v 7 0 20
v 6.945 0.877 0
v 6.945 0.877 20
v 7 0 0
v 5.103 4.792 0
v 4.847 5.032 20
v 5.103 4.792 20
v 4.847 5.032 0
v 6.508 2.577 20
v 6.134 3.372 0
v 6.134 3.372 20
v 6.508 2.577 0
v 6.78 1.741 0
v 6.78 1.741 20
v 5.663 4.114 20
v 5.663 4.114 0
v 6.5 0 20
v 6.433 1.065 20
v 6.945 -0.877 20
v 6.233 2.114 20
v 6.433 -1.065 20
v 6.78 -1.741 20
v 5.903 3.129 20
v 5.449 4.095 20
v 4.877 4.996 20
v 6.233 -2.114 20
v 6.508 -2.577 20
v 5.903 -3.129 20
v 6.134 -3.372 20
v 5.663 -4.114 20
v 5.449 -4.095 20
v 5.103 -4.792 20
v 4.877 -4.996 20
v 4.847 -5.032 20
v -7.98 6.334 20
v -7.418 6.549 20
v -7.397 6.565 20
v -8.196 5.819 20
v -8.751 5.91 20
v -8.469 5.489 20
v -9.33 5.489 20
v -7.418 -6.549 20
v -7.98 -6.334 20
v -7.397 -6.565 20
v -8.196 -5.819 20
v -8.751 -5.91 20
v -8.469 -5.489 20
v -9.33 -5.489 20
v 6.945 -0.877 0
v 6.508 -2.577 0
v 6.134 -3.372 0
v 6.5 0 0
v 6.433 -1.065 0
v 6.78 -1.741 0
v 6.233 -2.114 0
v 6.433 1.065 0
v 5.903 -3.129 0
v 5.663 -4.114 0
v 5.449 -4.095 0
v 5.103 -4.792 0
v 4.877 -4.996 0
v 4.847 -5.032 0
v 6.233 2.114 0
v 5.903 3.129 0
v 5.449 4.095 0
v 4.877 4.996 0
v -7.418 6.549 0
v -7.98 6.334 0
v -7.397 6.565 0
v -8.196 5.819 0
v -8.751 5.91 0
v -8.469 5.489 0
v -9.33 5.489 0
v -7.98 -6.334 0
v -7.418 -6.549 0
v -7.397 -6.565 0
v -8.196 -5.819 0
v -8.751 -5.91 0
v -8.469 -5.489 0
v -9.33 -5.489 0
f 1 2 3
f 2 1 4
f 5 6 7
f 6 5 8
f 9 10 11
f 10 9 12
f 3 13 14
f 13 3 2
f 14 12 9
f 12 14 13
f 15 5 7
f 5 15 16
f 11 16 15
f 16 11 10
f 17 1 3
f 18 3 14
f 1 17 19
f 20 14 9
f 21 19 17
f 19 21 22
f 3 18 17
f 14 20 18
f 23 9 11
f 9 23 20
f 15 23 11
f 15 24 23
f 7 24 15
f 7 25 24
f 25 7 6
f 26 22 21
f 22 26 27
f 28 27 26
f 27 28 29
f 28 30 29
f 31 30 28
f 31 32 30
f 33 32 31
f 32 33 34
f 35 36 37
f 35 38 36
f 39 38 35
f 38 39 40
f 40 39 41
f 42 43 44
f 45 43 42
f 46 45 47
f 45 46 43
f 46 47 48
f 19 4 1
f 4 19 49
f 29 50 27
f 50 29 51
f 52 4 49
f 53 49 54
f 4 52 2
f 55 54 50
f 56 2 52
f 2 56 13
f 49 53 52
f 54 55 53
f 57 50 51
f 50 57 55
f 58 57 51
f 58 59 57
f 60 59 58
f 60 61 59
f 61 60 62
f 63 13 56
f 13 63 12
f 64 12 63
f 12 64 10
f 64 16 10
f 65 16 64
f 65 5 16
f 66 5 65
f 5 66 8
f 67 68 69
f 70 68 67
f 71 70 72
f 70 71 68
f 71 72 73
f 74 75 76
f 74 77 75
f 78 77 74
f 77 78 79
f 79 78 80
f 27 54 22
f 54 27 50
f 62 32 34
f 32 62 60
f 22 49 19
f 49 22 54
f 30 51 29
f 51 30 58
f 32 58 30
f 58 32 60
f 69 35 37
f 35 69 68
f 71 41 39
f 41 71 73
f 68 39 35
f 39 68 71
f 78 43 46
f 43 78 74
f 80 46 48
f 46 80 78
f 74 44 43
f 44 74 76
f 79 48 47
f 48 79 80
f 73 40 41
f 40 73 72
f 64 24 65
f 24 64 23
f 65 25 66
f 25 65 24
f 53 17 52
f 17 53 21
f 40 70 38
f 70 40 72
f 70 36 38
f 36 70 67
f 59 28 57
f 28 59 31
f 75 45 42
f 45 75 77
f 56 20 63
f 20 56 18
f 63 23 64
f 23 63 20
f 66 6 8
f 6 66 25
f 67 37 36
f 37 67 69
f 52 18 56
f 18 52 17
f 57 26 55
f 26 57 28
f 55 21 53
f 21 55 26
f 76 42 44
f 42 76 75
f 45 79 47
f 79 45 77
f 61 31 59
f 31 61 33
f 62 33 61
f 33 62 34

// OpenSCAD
$fn = 50;


difference() {
	union() {
		cylinder(h = 20, r = 7.0000000000);
		translate(v = [-5.0000000000, 0, 0]) {
			cylinder(h = 20, r = 7.0000000000);
		}
	}
	union() {
		cylinder(h = 20, r = 3.2500000000);
		cylinder(h = 20, r = 1.8000000000);
		cylinder(h = 20, r = 1.8000000000);
		cylinder(h = 20, r = 1.8000000000);
		translate(v = [-9.5000000000, 0, 0]) {
			hull() {
				translate(v = [-3.7500000000, 0.0000000000, 0]) {
					cylinder(h = 20, r = 5.5000000000);
				}
				translate(v = [3.7500000000, 0.0000000000, 0]) {
					cylinder(h = 20, r = 5.5000000000);
				}
				translate(v = [-3.7500000000, -0.0000000000, 0]) {
					cylinder(h = 20, r = 5.5000000000);
				}
				translate(v = [3.7500000000, -0.0000000000, 0]) {
					cylinder(h = 20, r = 5.5000000000);
				}
			}
		}
		translate(v = [-2.0000000000, 0, 0.0000000000]) {
			cylinder(h = 20, r = 8.5000000000);
		}
	}
}
